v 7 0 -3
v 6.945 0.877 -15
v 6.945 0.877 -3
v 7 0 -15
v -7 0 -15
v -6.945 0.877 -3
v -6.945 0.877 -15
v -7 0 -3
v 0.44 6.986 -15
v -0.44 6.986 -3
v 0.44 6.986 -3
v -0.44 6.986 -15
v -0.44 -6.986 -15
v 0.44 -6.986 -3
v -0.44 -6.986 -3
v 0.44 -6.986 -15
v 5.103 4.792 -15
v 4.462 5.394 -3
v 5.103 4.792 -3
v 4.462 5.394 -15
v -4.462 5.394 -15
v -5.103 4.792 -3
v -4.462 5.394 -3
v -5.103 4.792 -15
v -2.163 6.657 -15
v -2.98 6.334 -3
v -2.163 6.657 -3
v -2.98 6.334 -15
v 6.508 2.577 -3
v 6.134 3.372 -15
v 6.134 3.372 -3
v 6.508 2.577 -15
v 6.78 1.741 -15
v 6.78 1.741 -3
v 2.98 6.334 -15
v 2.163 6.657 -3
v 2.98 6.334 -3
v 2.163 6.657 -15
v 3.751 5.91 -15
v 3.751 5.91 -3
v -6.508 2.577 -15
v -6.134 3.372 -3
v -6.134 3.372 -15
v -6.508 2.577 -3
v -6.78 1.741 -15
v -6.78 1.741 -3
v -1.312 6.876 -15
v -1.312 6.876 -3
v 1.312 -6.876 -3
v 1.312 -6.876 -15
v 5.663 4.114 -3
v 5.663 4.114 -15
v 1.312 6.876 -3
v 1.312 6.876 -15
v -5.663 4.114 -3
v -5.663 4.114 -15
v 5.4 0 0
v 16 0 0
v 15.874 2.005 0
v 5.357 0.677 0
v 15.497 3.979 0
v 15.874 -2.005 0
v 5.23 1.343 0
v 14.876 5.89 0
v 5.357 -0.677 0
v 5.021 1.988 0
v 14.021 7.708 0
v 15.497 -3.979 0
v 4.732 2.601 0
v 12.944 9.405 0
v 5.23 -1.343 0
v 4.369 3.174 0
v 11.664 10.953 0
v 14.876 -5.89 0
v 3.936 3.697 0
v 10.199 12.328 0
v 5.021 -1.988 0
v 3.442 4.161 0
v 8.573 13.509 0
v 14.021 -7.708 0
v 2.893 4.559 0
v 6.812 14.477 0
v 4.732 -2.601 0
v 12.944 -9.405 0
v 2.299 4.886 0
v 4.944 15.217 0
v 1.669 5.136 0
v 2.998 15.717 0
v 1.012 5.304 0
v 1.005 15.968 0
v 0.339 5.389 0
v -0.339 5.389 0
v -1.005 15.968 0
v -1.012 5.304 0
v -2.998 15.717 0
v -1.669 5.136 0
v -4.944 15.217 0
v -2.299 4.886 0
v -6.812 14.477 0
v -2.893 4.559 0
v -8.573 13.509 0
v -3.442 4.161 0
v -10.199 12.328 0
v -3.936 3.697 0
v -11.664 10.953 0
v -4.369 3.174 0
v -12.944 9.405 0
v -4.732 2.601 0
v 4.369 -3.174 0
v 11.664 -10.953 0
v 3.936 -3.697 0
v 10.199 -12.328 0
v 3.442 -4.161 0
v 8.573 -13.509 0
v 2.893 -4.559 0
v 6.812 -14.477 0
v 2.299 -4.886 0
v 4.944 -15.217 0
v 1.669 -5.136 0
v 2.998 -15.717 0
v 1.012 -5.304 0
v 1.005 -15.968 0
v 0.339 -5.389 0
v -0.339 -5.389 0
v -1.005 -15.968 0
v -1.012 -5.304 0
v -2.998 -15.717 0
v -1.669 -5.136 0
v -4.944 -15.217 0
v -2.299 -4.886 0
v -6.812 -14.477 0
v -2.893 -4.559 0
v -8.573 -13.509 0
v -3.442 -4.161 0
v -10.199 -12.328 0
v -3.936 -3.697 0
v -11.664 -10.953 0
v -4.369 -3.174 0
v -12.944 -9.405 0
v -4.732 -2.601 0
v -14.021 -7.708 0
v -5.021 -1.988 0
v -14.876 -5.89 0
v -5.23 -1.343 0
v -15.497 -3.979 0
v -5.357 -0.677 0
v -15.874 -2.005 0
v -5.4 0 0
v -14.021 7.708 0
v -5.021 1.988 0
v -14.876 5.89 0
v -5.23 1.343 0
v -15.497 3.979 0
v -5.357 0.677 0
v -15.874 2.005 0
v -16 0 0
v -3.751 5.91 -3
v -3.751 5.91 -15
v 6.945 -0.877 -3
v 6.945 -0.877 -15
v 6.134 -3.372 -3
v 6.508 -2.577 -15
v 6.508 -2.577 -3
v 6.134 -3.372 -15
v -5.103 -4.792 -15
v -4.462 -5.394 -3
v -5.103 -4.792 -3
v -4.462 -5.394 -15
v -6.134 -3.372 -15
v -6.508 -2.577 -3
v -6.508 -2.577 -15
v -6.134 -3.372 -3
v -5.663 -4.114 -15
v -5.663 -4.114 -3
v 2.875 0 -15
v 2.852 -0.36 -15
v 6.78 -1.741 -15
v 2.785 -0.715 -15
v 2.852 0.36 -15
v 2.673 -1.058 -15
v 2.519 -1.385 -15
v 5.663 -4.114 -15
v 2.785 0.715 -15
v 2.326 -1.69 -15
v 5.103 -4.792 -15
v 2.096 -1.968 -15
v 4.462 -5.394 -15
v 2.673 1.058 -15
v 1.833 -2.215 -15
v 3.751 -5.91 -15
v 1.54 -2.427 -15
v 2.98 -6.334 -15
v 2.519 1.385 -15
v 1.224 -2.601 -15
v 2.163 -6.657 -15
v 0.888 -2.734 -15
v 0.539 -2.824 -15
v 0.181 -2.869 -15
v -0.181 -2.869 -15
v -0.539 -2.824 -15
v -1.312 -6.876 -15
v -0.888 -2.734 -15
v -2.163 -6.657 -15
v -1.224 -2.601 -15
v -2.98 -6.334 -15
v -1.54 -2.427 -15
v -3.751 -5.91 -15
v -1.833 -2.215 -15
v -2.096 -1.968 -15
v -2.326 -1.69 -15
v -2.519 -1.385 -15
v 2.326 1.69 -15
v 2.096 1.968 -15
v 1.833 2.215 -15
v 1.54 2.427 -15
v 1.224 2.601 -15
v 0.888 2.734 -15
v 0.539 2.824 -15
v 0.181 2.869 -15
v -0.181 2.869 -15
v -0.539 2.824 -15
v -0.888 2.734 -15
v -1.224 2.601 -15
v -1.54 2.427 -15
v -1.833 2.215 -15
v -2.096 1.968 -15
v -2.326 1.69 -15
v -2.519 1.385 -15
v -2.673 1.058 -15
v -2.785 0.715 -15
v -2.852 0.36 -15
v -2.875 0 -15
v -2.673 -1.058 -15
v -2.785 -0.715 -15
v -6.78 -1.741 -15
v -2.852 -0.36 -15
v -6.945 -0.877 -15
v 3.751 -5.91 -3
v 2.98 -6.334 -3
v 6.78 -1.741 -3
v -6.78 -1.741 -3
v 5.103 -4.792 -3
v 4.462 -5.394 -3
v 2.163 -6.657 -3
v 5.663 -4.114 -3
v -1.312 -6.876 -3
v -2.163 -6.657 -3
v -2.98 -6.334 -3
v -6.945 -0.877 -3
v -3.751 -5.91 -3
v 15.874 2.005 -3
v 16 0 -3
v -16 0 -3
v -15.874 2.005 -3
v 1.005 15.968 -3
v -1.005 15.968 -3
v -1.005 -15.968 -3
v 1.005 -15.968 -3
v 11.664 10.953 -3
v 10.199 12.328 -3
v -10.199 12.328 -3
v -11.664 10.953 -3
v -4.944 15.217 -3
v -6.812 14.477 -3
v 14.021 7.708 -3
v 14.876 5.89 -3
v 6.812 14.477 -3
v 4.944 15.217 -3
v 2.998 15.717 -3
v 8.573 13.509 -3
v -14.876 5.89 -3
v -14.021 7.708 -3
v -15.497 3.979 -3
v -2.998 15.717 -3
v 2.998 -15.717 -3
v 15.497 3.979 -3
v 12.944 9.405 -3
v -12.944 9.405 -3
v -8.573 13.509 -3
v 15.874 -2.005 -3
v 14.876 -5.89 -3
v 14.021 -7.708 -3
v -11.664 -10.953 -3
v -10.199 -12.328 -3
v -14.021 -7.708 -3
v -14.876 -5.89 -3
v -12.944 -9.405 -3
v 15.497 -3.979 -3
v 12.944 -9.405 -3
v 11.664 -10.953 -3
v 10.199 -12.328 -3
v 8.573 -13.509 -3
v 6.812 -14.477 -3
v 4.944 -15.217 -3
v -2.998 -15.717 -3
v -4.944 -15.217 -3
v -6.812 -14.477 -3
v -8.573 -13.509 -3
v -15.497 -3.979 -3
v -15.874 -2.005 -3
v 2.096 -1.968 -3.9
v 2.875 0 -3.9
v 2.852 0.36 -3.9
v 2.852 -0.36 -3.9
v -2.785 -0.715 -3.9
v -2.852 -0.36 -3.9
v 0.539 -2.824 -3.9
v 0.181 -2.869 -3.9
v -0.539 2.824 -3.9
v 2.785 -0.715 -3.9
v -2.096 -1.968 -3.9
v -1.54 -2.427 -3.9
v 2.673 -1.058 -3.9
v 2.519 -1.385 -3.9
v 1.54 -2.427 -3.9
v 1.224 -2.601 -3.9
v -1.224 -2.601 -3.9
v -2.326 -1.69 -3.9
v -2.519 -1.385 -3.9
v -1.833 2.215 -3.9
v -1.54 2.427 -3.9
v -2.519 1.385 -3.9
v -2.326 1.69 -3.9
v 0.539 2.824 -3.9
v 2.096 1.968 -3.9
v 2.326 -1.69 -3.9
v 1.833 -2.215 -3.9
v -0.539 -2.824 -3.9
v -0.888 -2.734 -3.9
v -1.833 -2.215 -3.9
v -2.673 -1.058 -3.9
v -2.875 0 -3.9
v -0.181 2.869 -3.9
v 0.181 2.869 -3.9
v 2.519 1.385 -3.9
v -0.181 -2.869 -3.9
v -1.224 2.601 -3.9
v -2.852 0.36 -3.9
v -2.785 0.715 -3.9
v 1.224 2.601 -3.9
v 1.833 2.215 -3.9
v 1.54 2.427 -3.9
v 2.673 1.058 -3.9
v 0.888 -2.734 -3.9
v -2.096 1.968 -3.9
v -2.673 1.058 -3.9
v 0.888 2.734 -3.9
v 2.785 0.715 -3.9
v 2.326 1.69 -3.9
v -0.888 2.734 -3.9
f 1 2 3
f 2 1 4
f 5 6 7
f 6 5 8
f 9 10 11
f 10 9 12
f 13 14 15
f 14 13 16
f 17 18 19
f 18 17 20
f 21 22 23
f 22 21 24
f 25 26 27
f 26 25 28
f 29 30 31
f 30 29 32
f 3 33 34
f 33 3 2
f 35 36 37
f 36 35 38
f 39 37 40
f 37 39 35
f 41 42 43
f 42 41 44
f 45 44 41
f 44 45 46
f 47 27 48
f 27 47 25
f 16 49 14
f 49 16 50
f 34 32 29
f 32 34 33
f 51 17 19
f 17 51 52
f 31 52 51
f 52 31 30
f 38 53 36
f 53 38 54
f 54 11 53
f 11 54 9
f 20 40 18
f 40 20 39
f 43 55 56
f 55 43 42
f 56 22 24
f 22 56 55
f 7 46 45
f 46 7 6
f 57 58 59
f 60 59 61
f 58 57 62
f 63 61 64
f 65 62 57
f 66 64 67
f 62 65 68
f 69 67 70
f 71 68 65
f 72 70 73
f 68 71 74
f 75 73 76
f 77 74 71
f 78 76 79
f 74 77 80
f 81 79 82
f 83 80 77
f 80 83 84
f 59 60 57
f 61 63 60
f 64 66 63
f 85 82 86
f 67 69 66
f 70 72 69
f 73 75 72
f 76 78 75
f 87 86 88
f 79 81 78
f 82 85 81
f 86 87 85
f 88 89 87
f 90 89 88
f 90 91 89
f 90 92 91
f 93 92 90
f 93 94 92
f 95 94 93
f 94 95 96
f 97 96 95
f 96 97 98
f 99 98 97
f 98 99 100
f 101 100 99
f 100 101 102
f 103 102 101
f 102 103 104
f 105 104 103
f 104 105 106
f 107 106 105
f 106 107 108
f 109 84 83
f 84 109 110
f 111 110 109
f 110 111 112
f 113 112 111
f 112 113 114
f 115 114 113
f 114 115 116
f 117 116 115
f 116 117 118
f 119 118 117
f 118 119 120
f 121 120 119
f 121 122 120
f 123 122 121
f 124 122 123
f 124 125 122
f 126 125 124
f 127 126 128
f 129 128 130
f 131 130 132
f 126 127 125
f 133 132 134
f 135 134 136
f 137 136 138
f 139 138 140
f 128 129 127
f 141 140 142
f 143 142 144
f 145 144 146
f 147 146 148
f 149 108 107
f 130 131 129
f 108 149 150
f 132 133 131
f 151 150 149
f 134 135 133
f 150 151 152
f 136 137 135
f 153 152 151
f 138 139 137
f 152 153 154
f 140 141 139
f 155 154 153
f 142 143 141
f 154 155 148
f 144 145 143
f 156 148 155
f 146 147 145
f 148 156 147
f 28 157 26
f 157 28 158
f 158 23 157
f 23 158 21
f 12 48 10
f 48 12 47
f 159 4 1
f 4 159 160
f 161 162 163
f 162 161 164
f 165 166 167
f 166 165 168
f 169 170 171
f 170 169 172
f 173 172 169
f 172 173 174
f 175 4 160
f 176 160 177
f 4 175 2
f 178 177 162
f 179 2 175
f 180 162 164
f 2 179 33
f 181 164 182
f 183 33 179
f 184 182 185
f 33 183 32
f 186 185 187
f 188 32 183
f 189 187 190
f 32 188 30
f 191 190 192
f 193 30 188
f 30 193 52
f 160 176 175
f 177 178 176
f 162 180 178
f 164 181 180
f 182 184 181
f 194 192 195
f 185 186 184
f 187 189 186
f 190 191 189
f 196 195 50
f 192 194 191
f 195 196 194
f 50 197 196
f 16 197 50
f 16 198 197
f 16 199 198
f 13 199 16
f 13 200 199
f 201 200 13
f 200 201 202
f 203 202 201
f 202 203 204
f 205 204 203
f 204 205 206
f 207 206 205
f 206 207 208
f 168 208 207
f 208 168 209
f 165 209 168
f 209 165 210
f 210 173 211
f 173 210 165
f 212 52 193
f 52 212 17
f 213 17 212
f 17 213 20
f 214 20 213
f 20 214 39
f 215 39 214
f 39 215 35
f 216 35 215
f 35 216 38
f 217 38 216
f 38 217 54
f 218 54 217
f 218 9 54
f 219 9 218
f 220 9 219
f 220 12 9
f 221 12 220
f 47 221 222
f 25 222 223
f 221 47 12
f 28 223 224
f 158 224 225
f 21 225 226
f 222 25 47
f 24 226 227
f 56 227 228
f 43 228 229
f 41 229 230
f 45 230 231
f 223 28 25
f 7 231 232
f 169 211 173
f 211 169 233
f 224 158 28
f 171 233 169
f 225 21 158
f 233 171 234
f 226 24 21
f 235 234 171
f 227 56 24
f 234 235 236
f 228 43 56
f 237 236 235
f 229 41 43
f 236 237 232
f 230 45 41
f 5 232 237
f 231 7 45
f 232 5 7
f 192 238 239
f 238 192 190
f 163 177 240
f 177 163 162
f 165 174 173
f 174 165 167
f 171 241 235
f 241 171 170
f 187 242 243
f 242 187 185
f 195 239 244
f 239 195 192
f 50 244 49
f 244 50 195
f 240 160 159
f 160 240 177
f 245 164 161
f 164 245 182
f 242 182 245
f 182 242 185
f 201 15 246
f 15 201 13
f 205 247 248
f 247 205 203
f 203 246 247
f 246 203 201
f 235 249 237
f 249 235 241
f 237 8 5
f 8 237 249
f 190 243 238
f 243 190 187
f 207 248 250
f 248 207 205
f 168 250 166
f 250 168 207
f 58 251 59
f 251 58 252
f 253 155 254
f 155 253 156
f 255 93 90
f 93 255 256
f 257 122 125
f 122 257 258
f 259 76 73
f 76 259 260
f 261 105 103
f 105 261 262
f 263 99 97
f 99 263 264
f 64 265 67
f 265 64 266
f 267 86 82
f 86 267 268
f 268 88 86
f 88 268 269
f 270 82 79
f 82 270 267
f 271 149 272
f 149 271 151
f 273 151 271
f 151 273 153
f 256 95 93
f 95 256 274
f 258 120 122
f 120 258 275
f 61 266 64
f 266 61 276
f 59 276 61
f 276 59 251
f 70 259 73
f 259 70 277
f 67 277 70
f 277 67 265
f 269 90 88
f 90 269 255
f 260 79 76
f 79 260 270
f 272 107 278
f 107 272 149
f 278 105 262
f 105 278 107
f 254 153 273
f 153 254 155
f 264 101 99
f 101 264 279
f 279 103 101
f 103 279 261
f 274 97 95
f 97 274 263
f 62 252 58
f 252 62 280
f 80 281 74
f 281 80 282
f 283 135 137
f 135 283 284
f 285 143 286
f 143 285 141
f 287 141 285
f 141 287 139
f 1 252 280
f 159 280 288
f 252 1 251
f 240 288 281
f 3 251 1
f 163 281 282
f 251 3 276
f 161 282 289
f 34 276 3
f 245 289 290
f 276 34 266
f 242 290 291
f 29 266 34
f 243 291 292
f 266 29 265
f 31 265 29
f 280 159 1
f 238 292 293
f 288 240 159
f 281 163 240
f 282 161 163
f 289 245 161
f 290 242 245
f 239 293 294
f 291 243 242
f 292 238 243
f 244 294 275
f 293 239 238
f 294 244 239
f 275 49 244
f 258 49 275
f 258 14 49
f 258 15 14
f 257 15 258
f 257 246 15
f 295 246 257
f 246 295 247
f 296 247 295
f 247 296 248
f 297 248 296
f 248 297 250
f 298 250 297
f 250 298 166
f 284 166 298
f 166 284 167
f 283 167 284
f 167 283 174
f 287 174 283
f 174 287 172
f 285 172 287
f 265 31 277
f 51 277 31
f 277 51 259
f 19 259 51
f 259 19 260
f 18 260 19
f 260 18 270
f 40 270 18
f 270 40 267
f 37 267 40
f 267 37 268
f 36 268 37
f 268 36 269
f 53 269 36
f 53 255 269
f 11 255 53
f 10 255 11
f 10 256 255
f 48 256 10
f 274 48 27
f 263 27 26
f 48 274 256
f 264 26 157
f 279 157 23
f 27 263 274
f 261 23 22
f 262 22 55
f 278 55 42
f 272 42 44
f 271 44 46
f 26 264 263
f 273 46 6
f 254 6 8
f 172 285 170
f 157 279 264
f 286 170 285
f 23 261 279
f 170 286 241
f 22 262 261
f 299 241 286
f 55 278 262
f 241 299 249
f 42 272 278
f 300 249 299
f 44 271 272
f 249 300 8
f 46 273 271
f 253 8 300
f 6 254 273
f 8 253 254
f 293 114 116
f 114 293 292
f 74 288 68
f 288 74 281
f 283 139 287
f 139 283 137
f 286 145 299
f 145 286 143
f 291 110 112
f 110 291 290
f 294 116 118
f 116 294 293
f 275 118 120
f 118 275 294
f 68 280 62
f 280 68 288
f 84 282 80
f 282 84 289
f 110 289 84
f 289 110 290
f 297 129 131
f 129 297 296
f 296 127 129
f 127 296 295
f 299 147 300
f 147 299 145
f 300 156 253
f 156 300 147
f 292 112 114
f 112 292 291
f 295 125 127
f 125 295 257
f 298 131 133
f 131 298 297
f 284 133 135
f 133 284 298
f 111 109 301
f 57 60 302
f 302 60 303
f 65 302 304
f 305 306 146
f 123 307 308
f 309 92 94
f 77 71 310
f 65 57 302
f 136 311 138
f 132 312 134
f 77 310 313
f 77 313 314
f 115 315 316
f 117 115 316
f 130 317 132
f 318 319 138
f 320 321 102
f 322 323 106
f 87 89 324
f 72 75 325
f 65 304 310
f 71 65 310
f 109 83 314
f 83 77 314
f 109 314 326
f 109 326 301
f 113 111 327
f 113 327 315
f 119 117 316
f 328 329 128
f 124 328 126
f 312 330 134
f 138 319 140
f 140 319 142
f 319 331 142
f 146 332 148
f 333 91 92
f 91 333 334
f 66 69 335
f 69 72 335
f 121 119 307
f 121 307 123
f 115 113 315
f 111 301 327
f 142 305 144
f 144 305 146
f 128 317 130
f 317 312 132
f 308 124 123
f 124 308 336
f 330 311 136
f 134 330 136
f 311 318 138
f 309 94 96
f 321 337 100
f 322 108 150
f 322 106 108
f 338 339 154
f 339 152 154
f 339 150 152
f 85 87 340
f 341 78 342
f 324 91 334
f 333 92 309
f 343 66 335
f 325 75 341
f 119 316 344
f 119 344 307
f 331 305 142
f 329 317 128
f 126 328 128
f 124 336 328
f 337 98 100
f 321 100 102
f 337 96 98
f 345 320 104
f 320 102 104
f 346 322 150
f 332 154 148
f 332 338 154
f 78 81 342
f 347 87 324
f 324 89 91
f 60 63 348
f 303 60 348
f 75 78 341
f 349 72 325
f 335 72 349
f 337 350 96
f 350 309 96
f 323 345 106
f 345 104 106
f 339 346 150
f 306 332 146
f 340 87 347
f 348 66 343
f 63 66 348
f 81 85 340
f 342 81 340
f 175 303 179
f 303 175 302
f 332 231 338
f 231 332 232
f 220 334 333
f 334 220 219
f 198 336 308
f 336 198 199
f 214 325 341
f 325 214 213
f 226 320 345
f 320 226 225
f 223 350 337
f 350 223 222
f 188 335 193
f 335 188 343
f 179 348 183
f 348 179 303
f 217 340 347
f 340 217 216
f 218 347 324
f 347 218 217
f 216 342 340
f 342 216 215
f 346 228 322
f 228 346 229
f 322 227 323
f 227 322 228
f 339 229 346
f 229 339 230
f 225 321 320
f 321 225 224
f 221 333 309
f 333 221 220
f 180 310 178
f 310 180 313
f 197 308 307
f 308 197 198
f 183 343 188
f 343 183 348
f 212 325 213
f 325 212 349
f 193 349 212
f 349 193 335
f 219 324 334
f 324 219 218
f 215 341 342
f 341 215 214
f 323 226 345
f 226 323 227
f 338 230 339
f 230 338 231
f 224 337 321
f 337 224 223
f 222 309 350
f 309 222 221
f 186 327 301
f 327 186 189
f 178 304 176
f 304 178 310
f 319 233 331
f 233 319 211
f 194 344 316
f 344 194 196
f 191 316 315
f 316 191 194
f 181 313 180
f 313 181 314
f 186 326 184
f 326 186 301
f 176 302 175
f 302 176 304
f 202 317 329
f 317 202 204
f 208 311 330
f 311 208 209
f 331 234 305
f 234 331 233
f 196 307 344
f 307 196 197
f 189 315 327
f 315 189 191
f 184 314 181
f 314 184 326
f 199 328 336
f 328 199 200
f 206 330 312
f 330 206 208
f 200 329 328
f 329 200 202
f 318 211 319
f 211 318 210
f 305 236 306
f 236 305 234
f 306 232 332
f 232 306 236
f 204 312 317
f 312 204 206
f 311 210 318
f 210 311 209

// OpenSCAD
$fn = 50;


difference() {
	union() {
		translate(v = [0, 0, -15.0000000000]) {
			cylinder(h = 15, r = 7.0000000000);
		}
		translate(v = [0, 0, -3.0000000000]) {
			cylinder(h = 3, r = 16.0000000000);
		}
	}
	union() {
		translate(v = [0, 0, 0]) {
			rotate(a = [0, 0, 0]) {
				difference() {
					union() {
						#translate(v = [0, 0, -15.0000000000]) {
							cylinder(h = 15, r = 2.6000000000);
						}
						#translate(v = [0, 0, -3.9000000000]) {
							cylinder(h = 3.9000000000, r1 = 2.8750000000, r2 = 5.4000000000);
						}
						#translate(v = [0, 0, -15.0000000000]) {
							cylinder(h = 15, r = 2.8750000000);
						}
						#translate(v = [0, 0, -15.0000000000]) {
							cylinder(h = 15, r = 2.6000000000);
						}
					}
					union();
				}
			}
		}
	}
}
